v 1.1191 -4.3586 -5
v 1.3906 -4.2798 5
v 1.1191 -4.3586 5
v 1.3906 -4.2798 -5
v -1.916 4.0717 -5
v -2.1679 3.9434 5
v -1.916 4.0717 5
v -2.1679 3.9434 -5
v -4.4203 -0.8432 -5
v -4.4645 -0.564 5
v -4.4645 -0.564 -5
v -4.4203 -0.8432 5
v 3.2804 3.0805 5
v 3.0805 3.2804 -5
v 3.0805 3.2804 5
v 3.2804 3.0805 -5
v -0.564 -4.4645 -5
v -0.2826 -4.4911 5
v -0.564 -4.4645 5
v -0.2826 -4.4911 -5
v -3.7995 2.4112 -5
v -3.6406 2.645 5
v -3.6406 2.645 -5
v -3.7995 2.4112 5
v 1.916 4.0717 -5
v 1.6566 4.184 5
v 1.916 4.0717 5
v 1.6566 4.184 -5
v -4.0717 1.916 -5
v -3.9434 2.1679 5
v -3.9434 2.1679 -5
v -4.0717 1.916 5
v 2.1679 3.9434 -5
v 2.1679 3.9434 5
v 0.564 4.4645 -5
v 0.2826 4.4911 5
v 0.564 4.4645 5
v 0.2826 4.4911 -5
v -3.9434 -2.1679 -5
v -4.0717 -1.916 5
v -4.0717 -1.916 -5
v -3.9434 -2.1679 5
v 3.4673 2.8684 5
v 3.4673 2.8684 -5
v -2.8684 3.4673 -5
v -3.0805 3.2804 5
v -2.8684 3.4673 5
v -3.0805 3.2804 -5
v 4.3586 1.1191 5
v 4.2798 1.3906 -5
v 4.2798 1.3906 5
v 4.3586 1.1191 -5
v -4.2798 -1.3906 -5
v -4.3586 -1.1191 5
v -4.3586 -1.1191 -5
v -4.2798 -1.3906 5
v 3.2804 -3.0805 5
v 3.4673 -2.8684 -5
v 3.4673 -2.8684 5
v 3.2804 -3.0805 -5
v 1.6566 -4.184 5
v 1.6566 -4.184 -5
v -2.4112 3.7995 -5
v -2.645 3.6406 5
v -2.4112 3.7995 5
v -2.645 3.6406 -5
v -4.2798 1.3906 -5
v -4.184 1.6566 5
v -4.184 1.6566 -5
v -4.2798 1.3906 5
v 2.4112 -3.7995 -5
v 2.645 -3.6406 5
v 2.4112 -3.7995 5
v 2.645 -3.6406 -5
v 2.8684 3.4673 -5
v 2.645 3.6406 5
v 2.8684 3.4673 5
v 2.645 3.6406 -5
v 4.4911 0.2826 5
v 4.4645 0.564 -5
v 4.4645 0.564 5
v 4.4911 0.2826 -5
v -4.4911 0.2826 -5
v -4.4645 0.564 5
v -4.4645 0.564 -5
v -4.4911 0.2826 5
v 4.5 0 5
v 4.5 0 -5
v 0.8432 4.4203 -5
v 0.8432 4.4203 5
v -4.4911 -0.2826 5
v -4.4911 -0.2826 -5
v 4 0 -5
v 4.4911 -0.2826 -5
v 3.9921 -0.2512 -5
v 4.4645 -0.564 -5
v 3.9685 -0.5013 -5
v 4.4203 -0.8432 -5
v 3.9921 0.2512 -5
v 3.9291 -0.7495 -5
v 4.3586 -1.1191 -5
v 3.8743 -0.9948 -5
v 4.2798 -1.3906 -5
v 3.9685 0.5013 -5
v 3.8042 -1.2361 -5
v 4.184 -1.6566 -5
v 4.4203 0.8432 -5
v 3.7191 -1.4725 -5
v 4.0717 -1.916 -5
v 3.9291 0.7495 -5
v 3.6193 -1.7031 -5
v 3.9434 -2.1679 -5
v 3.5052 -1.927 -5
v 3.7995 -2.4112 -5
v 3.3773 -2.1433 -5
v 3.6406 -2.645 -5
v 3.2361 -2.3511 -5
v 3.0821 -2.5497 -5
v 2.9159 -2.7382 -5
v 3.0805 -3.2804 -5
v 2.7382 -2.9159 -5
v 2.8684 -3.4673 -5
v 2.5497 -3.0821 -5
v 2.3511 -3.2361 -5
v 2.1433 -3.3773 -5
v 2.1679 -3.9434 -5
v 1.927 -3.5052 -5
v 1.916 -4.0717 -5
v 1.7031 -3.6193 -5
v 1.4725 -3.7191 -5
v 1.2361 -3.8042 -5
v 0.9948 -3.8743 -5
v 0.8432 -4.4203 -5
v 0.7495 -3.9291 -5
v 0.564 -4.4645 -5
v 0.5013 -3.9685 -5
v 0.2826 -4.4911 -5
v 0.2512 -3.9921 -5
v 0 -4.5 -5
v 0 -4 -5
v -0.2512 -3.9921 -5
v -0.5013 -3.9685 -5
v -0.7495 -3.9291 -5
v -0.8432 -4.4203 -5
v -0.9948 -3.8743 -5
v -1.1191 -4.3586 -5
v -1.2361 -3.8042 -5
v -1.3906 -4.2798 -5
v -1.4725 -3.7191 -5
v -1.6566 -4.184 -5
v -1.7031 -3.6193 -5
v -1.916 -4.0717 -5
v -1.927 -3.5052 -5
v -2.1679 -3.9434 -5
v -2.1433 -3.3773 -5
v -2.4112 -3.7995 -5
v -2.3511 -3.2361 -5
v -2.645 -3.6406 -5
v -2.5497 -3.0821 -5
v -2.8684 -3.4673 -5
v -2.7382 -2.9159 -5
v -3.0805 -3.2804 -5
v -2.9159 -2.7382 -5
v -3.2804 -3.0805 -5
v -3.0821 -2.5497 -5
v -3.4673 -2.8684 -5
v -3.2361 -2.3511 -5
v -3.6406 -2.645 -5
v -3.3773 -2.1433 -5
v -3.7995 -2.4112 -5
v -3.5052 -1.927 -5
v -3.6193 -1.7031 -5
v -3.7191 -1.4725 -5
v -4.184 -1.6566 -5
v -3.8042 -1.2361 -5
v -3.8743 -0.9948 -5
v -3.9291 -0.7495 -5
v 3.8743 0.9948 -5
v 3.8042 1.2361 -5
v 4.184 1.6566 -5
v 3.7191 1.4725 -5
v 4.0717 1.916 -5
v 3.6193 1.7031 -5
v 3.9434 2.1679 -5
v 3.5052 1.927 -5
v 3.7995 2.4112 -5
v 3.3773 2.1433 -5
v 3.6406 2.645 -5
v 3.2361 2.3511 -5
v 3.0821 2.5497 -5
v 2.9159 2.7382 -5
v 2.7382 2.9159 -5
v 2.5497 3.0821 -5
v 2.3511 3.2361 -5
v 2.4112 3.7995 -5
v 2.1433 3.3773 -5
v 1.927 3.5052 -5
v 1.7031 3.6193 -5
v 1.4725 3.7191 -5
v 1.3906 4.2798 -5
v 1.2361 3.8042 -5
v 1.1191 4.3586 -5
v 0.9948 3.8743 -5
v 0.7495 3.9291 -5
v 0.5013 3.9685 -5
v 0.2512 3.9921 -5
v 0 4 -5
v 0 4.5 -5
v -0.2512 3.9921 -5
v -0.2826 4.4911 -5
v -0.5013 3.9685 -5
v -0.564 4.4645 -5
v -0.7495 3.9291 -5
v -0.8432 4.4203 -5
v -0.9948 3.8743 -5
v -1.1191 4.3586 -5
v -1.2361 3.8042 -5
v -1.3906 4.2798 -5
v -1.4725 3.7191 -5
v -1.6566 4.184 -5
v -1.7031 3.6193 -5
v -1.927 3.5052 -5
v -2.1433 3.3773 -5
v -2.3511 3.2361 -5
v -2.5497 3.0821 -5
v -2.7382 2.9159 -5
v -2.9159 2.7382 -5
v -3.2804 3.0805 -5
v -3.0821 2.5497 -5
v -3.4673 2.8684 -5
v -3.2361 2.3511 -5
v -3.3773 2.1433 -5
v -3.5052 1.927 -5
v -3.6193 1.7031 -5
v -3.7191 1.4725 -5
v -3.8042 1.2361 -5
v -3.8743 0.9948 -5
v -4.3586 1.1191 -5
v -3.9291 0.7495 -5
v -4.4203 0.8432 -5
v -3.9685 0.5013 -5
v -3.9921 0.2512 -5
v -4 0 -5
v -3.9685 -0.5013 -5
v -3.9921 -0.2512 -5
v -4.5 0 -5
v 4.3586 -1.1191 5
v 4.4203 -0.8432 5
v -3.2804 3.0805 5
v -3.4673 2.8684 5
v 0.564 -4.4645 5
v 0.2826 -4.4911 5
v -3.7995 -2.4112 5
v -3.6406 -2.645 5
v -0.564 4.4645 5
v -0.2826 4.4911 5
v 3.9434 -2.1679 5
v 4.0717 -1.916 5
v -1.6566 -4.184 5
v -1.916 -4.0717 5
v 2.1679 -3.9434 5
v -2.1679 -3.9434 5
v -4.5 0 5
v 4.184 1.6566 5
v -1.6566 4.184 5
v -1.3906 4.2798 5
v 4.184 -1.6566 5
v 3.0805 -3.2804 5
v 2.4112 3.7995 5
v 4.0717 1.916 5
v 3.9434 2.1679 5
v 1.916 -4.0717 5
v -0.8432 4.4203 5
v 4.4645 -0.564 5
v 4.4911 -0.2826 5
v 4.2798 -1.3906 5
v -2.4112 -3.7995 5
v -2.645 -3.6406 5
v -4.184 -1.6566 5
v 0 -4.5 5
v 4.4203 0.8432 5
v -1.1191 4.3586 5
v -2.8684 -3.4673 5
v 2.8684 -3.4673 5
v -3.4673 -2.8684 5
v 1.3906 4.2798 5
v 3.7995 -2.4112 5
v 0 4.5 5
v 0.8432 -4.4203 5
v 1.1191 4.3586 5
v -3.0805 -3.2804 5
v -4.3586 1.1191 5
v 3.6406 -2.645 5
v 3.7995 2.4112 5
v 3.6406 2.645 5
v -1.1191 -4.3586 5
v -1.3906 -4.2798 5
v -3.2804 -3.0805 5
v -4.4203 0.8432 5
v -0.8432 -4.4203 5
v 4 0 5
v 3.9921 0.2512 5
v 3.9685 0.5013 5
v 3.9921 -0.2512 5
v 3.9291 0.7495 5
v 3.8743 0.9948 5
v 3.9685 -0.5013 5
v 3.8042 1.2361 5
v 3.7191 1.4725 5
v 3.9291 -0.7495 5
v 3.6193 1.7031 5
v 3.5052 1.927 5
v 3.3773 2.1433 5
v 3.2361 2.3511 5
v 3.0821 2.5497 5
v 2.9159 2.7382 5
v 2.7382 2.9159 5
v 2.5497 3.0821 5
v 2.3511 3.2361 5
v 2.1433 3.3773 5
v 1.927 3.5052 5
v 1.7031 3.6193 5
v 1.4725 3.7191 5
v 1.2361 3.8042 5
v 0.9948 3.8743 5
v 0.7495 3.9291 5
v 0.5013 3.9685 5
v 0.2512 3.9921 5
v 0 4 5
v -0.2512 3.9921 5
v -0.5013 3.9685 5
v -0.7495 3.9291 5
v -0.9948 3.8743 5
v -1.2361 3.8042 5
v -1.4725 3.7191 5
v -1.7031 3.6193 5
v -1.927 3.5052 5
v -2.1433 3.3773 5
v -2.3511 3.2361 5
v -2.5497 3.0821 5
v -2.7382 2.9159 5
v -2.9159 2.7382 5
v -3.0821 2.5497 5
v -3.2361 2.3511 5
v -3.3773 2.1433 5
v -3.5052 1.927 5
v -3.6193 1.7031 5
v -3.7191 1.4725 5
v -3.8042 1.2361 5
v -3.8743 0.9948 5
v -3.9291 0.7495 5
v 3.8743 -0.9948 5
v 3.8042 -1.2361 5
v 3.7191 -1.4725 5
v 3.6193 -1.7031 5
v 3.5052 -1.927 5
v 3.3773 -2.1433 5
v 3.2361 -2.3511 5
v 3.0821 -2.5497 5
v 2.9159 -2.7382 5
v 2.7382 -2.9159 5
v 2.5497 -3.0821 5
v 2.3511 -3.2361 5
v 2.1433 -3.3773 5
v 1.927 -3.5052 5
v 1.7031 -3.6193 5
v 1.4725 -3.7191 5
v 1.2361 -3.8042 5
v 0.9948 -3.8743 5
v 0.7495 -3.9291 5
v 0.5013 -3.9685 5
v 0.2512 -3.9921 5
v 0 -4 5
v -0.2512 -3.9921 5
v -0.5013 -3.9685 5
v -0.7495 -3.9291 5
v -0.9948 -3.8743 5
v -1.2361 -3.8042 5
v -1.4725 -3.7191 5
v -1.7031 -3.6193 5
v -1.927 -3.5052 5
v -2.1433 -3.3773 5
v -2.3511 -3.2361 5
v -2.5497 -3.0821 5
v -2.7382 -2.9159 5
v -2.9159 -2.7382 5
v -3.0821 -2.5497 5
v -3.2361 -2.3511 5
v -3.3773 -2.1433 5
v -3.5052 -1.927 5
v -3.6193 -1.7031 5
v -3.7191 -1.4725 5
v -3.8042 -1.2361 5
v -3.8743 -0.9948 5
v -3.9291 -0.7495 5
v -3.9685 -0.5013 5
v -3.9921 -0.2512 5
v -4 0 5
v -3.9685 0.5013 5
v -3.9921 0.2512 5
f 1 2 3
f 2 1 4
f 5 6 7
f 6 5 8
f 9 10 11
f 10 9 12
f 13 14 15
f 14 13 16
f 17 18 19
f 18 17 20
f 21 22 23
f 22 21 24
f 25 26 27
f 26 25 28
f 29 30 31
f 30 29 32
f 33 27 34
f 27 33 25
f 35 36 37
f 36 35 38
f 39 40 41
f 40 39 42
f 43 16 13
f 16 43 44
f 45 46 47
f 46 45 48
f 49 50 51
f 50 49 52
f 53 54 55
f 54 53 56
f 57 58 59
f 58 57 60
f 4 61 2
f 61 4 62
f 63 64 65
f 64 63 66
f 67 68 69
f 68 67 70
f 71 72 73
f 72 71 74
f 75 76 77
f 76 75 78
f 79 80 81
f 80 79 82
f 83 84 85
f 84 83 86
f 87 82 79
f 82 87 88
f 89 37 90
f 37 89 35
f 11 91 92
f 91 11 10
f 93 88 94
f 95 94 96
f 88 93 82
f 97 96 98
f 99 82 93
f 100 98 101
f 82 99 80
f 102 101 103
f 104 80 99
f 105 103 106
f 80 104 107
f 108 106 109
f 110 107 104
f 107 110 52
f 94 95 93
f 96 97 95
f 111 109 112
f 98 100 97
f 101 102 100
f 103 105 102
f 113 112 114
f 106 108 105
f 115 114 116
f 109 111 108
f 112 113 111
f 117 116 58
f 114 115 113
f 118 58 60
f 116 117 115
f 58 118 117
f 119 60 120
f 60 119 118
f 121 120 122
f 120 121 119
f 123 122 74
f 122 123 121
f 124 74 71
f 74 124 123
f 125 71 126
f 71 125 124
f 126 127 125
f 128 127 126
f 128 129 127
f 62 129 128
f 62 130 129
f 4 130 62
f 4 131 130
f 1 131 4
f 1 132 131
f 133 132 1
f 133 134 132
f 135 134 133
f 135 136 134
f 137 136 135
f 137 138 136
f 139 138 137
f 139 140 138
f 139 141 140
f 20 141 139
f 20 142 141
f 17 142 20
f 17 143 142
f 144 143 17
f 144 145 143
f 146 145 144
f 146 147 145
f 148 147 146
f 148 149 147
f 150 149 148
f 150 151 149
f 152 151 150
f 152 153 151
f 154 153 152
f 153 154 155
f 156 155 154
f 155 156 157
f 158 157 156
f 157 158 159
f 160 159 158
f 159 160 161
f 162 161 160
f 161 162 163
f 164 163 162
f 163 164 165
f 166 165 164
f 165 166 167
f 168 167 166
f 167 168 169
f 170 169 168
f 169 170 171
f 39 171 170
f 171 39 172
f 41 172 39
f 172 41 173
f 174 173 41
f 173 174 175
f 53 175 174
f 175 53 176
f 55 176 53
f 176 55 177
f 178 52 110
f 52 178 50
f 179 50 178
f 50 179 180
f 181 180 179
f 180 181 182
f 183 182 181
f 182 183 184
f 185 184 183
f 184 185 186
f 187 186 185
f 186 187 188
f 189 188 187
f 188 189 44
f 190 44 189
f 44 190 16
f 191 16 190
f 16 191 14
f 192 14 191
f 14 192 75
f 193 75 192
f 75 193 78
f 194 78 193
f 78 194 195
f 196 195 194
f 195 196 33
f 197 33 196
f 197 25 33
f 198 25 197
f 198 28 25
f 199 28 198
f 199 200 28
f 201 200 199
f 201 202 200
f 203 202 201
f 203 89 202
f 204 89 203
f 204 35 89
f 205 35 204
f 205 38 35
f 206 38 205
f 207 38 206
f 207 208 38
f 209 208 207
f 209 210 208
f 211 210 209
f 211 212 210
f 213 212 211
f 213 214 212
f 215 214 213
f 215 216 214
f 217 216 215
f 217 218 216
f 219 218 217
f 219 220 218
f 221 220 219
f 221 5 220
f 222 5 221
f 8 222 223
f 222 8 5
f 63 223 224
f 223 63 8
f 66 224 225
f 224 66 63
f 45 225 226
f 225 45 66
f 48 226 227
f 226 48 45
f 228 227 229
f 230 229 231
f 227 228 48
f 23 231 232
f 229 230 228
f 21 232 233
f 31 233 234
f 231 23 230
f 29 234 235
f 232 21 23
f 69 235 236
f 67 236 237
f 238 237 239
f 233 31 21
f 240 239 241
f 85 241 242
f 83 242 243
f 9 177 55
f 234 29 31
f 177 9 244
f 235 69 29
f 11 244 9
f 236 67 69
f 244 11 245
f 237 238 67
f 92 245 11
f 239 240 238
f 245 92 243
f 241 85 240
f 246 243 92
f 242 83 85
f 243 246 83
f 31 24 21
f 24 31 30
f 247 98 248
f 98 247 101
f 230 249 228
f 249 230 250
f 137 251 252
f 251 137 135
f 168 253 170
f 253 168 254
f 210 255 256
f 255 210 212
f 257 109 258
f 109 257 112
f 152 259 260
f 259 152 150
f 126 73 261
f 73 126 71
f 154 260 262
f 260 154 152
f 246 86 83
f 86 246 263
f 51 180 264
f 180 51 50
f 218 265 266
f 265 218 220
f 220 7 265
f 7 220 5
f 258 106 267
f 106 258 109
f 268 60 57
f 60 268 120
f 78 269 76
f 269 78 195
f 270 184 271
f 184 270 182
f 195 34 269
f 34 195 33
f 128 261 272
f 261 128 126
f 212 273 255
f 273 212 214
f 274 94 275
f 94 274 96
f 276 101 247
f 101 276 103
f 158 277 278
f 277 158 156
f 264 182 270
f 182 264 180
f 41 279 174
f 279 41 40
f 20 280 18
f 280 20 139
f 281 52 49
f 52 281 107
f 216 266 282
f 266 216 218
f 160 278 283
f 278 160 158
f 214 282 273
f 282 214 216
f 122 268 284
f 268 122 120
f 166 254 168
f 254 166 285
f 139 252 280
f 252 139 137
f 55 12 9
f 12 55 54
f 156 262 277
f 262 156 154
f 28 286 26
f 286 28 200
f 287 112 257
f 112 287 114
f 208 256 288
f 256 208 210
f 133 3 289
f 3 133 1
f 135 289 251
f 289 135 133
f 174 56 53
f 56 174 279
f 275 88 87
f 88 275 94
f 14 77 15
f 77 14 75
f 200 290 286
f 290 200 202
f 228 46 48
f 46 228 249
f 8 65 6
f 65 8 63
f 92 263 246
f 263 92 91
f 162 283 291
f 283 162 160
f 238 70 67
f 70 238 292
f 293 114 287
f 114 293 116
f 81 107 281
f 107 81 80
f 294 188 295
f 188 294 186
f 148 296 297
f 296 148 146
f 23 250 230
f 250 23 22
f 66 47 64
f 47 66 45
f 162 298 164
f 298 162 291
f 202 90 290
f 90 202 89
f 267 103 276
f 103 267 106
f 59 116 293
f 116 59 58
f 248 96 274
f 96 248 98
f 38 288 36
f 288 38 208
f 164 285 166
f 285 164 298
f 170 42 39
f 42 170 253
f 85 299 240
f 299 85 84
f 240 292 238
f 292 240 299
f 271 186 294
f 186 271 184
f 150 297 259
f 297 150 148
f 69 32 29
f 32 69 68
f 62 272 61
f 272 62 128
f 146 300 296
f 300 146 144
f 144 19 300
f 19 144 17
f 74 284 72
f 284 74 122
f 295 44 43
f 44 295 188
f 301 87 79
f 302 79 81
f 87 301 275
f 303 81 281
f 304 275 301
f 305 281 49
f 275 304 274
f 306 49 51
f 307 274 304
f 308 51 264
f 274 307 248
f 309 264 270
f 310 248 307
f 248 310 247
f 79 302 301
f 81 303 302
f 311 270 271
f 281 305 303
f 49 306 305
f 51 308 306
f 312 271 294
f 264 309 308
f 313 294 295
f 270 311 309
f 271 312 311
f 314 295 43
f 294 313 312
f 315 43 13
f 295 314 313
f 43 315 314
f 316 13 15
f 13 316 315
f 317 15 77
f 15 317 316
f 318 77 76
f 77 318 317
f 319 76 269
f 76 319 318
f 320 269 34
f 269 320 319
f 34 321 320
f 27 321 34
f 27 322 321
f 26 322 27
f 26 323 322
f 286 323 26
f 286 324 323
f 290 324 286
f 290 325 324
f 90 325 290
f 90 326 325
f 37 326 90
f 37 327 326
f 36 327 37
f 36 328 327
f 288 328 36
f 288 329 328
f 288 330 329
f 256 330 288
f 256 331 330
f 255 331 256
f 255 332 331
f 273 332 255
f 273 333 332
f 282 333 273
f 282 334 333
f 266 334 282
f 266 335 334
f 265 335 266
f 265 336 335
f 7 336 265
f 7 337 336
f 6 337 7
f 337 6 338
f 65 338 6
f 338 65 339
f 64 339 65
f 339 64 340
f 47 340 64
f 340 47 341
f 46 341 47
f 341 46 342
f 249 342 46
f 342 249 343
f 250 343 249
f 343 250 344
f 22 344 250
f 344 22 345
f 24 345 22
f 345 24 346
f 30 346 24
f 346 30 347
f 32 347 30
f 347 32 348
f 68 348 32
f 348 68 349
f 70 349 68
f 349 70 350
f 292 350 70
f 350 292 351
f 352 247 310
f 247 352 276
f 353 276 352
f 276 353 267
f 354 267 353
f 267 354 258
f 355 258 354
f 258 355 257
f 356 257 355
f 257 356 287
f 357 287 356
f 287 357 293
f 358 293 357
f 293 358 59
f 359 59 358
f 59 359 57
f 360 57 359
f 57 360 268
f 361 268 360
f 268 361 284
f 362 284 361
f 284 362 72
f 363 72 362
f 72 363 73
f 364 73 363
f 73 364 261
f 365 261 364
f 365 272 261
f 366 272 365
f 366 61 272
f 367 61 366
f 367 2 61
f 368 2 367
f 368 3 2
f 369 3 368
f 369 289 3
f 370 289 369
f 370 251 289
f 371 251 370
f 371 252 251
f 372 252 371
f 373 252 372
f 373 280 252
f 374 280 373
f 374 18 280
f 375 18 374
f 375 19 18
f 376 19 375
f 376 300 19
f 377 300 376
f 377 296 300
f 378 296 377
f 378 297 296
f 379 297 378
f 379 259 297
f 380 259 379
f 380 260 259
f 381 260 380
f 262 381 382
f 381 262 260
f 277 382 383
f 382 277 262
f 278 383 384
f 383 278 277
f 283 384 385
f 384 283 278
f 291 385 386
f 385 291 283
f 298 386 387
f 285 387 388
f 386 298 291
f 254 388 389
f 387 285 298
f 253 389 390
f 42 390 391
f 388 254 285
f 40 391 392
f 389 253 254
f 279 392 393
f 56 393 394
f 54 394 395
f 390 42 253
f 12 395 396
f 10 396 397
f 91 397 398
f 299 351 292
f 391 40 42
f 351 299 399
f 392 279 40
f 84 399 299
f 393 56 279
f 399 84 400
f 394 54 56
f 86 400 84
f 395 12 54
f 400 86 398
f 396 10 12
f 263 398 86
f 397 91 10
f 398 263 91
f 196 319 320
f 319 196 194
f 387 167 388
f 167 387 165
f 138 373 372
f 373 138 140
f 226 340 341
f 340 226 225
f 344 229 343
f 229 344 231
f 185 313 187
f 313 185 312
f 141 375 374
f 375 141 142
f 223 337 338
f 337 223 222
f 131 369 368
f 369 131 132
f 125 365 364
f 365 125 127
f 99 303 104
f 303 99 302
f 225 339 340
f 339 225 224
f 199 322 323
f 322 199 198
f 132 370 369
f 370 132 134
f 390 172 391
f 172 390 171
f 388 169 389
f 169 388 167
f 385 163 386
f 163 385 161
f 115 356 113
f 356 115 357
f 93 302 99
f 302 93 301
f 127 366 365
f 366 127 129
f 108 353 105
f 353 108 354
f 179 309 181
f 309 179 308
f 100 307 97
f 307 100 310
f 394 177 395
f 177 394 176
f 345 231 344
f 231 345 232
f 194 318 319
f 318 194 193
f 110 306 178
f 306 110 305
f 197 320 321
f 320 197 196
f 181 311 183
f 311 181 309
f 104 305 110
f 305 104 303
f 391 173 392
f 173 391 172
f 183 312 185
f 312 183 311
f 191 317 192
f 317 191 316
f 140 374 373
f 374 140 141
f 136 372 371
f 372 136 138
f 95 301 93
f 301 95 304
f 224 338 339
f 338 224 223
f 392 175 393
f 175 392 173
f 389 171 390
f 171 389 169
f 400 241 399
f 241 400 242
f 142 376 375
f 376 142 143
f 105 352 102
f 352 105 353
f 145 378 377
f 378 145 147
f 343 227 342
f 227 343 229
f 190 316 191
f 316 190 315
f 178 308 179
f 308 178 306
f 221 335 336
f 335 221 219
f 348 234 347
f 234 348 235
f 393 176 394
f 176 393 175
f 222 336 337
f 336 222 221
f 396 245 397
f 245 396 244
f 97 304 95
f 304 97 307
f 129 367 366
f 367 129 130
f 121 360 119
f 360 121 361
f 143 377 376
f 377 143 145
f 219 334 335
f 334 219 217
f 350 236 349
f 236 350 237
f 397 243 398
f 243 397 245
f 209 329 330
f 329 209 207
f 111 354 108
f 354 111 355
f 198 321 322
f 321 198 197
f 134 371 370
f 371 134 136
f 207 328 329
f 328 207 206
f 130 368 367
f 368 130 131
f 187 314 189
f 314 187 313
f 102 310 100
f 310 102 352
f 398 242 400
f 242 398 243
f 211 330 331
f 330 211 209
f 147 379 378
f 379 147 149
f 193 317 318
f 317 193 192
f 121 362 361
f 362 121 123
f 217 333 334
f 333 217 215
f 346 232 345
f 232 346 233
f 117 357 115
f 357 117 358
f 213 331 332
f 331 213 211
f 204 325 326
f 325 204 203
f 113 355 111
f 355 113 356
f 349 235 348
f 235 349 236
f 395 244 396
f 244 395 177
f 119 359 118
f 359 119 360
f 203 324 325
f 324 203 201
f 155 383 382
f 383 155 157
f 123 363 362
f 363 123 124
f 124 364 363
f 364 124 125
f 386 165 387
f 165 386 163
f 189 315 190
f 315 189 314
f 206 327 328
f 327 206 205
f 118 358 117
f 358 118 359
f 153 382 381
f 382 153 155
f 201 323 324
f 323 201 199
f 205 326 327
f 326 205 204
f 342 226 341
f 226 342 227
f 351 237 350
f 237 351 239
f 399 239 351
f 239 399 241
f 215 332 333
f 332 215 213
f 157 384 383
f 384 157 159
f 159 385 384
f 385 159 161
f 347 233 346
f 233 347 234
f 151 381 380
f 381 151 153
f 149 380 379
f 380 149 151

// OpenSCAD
$fn = 100;

difference() {
    cylinder(10, 4.5, 4.5, true);
cylinder(15, 4, 4, true);
}
